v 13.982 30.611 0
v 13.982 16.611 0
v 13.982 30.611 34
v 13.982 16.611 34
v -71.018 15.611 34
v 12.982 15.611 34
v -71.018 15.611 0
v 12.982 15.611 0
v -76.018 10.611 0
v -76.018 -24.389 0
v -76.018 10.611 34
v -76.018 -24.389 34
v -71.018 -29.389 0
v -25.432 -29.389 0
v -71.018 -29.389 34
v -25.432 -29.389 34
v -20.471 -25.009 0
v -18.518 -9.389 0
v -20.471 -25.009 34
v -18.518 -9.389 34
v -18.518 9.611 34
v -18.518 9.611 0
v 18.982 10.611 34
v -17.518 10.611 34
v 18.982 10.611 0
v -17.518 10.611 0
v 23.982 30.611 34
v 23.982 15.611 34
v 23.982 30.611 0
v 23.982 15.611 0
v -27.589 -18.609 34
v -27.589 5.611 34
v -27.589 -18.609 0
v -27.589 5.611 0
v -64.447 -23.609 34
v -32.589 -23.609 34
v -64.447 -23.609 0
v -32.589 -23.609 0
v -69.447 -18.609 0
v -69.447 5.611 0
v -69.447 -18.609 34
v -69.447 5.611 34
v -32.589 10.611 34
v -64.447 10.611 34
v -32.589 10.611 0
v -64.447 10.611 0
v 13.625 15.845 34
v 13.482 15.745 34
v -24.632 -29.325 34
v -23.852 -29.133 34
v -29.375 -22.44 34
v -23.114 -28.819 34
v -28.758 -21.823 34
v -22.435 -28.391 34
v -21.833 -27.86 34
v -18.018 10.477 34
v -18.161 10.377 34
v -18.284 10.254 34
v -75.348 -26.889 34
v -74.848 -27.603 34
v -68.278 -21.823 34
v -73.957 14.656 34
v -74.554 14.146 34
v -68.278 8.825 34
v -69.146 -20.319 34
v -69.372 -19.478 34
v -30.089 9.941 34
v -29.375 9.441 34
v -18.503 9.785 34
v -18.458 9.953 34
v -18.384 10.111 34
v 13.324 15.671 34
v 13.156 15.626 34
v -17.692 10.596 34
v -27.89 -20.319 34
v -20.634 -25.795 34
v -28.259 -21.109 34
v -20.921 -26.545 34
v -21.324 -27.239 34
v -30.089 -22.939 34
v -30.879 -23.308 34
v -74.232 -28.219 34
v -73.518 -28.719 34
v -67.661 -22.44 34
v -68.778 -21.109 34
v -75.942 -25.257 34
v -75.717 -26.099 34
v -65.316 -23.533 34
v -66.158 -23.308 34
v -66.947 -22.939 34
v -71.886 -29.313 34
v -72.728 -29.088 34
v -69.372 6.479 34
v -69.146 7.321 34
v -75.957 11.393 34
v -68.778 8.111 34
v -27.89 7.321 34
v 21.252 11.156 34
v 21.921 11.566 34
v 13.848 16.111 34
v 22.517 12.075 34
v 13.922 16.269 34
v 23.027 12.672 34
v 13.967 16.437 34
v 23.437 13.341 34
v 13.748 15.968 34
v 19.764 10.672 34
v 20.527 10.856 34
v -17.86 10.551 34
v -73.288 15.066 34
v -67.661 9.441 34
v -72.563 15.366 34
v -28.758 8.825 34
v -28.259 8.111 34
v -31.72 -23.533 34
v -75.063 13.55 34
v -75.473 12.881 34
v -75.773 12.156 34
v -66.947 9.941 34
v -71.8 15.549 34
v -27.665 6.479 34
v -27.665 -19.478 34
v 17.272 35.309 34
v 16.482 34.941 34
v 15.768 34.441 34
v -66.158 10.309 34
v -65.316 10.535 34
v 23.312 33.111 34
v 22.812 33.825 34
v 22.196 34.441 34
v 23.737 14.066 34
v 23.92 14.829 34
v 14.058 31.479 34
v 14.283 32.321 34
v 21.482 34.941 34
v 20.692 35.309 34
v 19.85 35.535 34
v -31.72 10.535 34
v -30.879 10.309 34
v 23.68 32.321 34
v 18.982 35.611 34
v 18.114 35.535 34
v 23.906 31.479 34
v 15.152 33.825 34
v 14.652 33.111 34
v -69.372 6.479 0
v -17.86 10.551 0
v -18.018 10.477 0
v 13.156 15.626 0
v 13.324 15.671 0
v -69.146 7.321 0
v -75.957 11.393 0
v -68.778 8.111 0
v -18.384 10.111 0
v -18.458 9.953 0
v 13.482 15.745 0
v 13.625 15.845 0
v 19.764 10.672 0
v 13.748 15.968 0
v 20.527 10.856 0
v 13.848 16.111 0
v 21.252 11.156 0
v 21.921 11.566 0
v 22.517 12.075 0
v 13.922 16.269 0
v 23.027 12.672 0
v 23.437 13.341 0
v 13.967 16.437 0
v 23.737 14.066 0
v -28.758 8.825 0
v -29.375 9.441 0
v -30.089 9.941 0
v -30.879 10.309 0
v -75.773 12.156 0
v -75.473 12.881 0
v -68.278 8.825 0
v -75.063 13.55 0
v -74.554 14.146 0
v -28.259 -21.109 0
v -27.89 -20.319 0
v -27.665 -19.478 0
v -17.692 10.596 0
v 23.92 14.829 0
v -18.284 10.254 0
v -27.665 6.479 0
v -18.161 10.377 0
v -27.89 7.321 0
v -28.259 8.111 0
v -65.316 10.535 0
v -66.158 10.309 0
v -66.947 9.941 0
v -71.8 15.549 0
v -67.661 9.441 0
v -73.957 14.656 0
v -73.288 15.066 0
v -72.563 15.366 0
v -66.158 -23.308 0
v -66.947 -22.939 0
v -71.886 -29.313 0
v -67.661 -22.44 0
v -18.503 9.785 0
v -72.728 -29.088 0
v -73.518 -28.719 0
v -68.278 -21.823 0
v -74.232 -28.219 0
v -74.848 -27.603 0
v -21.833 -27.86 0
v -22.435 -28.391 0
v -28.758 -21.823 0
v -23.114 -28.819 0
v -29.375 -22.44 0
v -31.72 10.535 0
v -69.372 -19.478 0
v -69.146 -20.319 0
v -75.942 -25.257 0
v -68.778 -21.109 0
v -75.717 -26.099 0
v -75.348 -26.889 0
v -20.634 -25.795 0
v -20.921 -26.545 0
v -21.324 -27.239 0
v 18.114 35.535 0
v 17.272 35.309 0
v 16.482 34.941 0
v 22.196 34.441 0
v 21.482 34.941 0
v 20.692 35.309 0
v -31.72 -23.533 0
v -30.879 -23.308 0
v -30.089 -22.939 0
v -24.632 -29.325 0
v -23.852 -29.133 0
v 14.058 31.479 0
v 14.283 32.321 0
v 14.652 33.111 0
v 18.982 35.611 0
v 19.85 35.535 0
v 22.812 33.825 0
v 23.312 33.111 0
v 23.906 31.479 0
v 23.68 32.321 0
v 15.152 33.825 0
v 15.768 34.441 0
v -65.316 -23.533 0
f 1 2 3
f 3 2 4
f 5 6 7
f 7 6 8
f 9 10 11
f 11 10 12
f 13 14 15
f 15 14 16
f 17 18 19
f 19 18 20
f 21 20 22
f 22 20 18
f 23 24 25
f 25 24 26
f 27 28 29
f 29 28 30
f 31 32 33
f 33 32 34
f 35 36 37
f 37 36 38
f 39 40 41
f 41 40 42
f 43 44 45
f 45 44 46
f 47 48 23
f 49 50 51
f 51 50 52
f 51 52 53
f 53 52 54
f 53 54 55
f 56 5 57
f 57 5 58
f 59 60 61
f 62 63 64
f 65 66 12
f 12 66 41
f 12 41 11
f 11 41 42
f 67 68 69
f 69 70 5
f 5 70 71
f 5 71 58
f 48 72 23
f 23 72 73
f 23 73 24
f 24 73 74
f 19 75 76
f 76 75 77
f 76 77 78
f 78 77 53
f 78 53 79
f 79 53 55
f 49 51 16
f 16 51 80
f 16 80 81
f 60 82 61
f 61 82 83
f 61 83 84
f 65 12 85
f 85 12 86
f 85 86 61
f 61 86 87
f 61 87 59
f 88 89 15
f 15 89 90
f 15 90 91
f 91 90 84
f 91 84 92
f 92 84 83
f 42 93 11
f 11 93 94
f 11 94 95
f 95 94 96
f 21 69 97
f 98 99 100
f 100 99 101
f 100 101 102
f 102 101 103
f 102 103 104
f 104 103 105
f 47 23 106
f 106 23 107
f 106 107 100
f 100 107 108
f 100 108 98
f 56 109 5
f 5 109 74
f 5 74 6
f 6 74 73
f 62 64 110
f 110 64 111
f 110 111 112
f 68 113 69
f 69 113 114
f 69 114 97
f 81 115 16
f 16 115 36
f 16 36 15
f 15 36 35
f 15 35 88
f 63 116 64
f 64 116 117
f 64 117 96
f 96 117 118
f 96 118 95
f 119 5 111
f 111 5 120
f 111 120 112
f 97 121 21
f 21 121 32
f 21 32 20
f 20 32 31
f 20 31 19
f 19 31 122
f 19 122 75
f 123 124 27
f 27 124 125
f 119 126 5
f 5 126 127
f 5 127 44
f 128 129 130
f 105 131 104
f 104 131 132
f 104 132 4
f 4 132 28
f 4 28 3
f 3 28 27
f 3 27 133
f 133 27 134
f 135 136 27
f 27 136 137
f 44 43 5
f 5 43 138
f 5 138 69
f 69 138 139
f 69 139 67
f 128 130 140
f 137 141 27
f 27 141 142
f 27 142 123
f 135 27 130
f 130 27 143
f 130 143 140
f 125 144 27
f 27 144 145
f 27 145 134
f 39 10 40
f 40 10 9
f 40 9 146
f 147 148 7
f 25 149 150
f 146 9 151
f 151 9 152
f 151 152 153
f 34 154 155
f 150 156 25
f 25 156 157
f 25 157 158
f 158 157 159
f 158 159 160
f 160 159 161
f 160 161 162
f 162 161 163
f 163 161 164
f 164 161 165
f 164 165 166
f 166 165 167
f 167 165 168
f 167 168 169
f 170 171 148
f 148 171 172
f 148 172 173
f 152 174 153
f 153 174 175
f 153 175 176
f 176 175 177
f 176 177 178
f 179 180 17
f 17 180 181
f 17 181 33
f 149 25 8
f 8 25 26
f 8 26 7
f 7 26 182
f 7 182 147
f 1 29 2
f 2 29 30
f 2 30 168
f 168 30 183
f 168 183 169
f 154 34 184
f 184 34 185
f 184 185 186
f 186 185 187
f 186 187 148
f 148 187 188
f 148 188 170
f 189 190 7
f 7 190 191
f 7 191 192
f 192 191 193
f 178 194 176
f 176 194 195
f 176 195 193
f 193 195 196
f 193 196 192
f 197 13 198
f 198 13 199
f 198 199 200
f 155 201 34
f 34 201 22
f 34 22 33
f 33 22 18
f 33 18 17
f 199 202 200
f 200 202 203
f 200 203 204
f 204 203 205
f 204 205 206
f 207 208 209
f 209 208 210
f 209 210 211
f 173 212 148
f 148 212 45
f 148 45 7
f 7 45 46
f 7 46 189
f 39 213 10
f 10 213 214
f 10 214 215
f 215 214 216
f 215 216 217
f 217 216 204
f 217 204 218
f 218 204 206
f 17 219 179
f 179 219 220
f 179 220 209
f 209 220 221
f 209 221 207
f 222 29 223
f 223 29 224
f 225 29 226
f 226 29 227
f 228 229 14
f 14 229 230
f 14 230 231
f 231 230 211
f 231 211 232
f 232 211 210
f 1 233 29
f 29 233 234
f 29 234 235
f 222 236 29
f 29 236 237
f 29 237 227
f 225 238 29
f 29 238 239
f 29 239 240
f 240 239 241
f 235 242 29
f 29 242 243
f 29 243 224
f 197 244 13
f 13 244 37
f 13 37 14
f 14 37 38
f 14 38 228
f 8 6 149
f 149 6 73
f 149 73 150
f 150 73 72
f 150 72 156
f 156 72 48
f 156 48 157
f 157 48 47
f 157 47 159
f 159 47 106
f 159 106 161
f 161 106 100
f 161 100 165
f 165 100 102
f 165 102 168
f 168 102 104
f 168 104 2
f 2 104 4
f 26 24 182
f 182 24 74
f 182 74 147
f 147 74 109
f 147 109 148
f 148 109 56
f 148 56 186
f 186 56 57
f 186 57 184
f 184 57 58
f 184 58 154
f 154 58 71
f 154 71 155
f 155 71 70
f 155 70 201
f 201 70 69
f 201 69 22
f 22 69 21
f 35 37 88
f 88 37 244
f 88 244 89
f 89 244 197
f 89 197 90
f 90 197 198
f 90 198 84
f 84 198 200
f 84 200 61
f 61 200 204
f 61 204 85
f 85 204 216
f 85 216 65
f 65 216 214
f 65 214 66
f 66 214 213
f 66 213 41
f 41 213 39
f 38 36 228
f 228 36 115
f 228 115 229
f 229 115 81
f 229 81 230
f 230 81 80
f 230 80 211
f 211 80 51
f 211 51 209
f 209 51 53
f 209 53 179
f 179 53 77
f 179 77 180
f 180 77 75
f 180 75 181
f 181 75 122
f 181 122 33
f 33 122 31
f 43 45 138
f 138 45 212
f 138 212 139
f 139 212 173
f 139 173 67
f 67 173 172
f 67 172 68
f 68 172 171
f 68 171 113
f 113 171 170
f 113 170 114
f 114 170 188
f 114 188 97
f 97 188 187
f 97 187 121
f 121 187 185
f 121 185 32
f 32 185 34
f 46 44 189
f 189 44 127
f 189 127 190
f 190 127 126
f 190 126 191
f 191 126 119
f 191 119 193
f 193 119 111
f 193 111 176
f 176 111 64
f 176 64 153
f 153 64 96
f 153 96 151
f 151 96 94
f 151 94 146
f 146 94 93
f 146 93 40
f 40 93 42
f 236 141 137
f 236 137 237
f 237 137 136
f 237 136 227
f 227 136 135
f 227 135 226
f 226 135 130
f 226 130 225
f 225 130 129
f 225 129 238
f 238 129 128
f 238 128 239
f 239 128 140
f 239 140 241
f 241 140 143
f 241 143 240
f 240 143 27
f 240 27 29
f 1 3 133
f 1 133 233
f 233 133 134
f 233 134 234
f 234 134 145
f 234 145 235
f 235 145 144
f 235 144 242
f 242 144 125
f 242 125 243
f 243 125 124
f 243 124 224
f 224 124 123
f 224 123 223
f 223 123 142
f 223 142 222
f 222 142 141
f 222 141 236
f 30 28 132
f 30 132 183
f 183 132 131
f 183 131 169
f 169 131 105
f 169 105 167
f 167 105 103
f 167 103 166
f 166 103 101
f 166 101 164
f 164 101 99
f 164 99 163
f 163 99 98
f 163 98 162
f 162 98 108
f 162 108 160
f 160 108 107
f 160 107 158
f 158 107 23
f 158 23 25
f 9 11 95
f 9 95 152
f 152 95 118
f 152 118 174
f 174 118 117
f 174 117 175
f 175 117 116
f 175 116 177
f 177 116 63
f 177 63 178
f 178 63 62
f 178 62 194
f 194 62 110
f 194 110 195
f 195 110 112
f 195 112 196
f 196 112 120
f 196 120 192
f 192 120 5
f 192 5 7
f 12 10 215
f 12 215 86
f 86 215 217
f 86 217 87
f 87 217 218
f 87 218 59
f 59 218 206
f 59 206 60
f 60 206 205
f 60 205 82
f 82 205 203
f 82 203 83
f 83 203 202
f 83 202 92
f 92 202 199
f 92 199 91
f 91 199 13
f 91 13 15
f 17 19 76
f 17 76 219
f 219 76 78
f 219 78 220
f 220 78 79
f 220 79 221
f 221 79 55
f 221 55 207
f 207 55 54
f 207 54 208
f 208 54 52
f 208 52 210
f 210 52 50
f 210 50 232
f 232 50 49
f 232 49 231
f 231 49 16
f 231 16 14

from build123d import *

# Parameters (mm, degrees)
SKETCH1_W           = 41.858784395
SKETCH1_H           = 34.22014658
BOSS_EXTRUDE1_DEPTH = 34
FILLET1_R           = 1
FILLET2_R           = 5
FILLET3_R           = 5


with BuildPart() as part:
    # Sketch1 → Boss-Extrude1 (new body)
    with BuildSketch(Plane.XY):
        Polygon((23.981900452, 10.610859729), (-16.018099548, 10.610859729), (-18.518099548, 10.610859729), (-18.518099548, -9.389140271), (-21.018099548, -29.389140271), (-76.018099548, -29.389140271), (-76.018099548, 10.610859729), (-76.018099548, 15.610859729), (13.981900452, 15.610859729), (13.981900452, 35.610859729), (23.981900452, 35.610859729), (23.981900452, 15.610859729), align=None)
        with Locations((-48.518099548, -6.499213561)):
            Rectangle(SKETCH1_W, SKETCH1_H, mode=Mode.SUBTRACT)
    extrude(amount=BOSS_EXTRUDE1_DEPTH)

    # Fillet1
    fillet1_edges = [part.edges().sort_by_distance(p)[0] for p in [
        (-18.518099548, 10.610859729, 17),
        (13.981900452, 15.610859729, 17),
    ]]
    fillet(fillet1_edges, radius=FILLET1_R)

    # Fillet2
    fillet2_edges = [part.edges().sort_by_distance(p)[0] for p in [
        (-27.58870735, 10.610859729, 17),
        (-69.447491745, 10.610859729, 17),
        (-69.447491745, -23.609286851, 17),
        (-27.58870735, -23.609286851, 17),
    ]]
    fillet(fillet2_edges, radius=FILLET2_R)

    # Fillet3
    fillet3_edges = [part.edges().sort_by_distance(p)[0] for p in [
        (13.981900452, 35.610859729, 17),
        (23.981900452, 35.610859729, 17),
        (23.981900452, 10.610859729, 17),
        (-76.018099548, 15.610859729, 17),
        (-76.018099548, -29.389140271, 17),
        (-21.018099548, -29.389140271, 17),
    ]]
    fillet(fillet3_edges, radius=FILLET3_R - 0.0001)  # a hair under: the kernel refuses the full size


solid = part.part
